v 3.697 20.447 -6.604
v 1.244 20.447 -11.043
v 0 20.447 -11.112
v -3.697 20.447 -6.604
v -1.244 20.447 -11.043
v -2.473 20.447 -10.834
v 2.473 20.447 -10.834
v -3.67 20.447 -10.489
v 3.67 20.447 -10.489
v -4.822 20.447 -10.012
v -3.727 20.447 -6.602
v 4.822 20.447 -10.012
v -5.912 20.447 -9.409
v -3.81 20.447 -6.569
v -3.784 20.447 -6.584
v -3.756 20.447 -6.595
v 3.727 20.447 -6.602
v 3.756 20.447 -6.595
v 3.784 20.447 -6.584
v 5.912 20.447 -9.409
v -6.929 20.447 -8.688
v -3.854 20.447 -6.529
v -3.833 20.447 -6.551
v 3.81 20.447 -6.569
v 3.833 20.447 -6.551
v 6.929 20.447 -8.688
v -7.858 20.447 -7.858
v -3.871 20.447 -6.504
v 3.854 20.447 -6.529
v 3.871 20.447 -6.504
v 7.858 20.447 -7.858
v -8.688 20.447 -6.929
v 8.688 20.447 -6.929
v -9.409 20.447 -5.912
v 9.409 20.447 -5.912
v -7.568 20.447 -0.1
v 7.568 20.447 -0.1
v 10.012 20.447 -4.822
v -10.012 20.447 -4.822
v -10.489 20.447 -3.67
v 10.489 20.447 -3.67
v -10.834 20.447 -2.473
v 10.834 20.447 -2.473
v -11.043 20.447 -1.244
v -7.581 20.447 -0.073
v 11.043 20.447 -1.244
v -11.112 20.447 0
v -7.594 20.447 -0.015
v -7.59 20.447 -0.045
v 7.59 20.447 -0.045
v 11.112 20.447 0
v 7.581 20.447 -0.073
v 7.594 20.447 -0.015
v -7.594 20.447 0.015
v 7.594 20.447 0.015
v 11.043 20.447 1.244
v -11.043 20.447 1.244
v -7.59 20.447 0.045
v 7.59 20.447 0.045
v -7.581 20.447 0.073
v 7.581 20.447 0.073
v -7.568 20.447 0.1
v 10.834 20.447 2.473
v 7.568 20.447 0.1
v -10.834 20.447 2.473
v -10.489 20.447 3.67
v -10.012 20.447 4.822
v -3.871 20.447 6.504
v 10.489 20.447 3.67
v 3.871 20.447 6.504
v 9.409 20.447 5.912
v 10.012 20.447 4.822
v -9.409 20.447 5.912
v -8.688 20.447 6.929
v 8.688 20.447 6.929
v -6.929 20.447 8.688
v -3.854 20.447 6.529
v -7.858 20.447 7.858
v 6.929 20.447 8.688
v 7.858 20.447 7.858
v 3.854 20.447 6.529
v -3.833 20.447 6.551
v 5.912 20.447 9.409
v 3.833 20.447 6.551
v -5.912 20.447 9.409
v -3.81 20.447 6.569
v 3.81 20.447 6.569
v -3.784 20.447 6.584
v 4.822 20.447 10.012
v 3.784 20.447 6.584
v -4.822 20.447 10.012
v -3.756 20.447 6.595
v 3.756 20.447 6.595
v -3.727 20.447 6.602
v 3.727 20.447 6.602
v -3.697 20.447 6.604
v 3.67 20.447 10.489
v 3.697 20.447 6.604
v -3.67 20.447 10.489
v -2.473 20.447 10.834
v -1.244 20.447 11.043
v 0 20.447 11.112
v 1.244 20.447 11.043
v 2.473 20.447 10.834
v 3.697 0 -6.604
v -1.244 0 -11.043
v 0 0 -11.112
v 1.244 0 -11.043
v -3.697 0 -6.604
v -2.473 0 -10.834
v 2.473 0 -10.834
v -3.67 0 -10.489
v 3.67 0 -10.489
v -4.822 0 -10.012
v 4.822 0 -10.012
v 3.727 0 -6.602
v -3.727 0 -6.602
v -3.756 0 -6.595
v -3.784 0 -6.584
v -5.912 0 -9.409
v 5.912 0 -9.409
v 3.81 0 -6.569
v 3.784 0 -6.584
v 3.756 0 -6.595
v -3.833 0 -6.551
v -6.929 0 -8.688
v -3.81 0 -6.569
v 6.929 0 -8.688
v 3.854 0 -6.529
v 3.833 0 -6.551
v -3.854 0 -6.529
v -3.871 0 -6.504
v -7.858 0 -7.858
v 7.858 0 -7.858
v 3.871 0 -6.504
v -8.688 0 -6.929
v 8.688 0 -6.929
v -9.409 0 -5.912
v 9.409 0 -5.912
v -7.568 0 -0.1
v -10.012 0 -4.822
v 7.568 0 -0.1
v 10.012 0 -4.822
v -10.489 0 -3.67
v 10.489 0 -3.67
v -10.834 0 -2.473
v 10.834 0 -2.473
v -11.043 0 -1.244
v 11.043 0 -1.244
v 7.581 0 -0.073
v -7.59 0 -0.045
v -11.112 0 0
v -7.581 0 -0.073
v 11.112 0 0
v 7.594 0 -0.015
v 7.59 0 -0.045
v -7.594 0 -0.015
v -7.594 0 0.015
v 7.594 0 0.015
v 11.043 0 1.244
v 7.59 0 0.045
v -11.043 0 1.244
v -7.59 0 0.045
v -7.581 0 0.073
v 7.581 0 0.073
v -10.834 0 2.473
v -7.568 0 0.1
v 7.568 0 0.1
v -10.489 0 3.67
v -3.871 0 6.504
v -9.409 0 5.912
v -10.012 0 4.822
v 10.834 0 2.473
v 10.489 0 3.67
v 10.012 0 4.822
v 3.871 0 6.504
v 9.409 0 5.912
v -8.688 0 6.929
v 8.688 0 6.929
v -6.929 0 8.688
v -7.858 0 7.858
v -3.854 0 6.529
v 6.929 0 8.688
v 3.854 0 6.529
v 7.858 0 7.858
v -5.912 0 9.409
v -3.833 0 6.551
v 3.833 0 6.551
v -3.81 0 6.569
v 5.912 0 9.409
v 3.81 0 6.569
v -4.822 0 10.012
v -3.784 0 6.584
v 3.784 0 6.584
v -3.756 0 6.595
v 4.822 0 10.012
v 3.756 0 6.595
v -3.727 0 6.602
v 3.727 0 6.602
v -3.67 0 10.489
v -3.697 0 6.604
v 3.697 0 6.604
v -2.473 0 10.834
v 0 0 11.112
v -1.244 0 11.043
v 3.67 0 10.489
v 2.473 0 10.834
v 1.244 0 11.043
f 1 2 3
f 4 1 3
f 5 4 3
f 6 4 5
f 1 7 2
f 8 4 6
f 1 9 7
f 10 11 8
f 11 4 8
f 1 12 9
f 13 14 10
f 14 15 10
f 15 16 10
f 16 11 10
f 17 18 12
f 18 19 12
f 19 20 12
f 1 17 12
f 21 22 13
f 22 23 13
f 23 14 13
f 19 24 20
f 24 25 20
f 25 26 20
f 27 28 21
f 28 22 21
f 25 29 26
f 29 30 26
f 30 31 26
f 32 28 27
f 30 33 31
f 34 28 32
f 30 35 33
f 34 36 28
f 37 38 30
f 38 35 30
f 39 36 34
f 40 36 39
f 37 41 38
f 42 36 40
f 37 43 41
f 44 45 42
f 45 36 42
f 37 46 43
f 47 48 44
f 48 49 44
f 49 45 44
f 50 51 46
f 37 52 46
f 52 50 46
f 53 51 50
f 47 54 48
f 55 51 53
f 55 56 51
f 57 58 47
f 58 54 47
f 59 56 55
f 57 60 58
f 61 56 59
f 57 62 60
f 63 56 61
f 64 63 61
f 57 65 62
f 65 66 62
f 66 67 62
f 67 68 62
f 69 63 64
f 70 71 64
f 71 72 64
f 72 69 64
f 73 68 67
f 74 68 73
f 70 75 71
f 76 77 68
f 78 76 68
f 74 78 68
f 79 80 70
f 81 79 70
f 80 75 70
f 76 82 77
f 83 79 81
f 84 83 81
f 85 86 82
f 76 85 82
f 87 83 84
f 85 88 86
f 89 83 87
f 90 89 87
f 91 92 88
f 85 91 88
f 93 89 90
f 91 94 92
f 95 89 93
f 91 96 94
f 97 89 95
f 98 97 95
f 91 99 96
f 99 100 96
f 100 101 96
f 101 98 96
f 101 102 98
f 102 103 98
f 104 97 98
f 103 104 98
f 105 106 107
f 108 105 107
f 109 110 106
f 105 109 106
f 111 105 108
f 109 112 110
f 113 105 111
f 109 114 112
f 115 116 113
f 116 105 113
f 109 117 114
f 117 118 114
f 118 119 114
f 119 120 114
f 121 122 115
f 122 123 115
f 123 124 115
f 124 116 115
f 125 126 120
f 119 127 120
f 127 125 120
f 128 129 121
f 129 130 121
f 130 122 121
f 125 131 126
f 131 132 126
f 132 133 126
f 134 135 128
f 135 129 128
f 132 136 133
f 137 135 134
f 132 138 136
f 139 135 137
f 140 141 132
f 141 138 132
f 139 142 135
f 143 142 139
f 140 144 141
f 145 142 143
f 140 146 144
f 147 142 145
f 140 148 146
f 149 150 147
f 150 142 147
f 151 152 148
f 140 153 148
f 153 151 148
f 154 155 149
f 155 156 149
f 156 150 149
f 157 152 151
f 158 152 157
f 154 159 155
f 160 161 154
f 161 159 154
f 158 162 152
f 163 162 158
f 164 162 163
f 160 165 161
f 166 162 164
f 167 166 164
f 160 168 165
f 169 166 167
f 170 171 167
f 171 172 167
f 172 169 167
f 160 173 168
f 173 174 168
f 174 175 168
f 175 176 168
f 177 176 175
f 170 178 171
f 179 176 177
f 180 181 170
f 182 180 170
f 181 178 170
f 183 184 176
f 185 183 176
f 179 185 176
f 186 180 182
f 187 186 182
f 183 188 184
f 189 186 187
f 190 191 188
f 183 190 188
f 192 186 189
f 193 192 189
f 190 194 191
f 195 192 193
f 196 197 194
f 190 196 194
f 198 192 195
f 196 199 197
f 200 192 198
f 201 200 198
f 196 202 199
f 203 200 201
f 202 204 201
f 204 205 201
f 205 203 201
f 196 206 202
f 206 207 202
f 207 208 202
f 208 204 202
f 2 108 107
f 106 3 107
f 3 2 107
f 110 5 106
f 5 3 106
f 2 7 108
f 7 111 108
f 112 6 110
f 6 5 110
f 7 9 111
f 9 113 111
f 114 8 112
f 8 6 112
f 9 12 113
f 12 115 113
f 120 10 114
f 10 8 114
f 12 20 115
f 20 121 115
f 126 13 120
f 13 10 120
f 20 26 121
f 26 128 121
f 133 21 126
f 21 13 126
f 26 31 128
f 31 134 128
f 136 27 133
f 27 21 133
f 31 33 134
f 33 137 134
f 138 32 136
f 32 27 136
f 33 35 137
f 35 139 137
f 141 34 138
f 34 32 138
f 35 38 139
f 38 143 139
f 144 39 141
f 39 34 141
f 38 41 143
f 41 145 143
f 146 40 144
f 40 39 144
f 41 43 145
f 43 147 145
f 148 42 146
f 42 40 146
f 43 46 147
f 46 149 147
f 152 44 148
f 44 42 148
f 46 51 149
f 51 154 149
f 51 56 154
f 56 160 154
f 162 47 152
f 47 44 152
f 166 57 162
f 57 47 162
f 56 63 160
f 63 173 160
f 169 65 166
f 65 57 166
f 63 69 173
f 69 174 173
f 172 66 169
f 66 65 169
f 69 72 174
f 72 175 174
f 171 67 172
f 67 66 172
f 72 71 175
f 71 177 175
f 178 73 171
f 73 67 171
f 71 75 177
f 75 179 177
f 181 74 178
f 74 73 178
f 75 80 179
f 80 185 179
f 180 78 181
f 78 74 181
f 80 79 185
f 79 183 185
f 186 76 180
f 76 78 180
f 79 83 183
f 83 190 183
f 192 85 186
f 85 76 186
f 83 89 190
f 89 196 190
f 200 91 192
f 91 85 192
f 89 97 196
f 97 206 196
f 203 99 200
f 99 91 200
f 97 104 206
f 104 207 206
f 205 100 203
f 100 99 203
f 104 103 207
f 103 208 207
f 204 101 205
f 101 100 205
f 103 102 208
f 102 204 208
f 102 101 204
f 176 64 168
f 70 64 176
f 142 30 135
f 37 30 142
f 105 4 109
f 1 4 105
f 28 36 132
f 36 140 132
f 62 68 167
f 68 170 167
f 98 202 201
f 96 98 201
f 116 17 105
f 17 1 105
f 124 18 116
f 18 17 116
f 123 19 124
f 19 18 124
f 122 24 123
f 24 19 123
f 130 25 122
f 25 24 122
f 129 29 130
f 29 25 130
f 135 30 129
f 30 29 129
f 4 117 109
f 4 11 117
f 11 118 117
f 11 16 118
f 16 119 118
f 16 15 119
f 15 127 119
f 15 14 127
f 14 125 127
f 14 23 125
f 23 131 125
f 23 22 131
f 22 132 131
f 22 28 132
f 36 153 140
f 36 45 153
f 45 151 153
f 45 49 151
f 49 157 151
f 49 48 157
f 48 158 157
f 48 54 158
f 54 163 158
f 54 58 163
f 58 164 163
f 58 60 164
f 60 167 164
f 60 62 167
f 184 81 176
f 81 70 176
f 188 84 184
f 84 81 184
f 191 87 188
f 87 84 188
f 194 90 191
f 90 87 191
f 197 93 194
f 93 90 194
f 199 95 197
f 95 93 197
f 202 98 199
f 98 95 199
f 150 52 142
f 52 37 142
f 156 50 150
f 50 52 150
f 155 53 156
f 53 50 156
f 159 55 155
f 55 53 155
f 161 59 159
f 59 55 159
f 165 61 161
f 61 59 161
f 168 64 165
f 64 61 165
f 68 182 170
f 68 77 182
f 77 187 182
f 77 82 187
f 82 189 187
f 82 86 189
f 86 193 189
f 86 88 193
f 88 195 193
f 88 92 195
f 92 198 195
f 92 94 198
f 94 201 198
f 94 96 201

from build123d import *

# Parameters (mm, degrees)
SKETCH1_R           = 11.1125
BOSS_EXTRUDE1_DEPTH = 20.447
FILLET1_R           = 0.2


with BuildPart() as part:
    # Sketch1 → Boss-Extrude1 (new body)
    with BuildSketch(Plane(origin=(0, 0, 0), x_dir=(1, 0, 0), z_dir=(0, 1, 0))):
        Circle(SKETCH1_R)
        Polygon((7.625642355, 0), (3.812821178, 6.604), (-3.812821178, 6.604), (-7.625642355, 0), (-3.812821178, -6.604), (3.812821178, -6.604), align=None, mode=Mode.SUBTRACT)
    extrude(amount=BOSS_EXTRUDE1_DEPTH)

    # Fillet1
    fillet1_edges = [part.edges().sort_by_distance(p)[0] for p in [
        (7.625642355, 10.2235, 0),
        (3.812821178, 10.2235, -6.604),
        (-3.812821178, 10.2235, -6.604),
        (-7.625642355, 10.2235, 0),
        (-3.812821178, 10.2235, 6.604),
        (3.812821178, 10.2235, 6.604),
    ]]
    fillet(fillet1_edges, radius=FILLET1_R)


solid = part.part
